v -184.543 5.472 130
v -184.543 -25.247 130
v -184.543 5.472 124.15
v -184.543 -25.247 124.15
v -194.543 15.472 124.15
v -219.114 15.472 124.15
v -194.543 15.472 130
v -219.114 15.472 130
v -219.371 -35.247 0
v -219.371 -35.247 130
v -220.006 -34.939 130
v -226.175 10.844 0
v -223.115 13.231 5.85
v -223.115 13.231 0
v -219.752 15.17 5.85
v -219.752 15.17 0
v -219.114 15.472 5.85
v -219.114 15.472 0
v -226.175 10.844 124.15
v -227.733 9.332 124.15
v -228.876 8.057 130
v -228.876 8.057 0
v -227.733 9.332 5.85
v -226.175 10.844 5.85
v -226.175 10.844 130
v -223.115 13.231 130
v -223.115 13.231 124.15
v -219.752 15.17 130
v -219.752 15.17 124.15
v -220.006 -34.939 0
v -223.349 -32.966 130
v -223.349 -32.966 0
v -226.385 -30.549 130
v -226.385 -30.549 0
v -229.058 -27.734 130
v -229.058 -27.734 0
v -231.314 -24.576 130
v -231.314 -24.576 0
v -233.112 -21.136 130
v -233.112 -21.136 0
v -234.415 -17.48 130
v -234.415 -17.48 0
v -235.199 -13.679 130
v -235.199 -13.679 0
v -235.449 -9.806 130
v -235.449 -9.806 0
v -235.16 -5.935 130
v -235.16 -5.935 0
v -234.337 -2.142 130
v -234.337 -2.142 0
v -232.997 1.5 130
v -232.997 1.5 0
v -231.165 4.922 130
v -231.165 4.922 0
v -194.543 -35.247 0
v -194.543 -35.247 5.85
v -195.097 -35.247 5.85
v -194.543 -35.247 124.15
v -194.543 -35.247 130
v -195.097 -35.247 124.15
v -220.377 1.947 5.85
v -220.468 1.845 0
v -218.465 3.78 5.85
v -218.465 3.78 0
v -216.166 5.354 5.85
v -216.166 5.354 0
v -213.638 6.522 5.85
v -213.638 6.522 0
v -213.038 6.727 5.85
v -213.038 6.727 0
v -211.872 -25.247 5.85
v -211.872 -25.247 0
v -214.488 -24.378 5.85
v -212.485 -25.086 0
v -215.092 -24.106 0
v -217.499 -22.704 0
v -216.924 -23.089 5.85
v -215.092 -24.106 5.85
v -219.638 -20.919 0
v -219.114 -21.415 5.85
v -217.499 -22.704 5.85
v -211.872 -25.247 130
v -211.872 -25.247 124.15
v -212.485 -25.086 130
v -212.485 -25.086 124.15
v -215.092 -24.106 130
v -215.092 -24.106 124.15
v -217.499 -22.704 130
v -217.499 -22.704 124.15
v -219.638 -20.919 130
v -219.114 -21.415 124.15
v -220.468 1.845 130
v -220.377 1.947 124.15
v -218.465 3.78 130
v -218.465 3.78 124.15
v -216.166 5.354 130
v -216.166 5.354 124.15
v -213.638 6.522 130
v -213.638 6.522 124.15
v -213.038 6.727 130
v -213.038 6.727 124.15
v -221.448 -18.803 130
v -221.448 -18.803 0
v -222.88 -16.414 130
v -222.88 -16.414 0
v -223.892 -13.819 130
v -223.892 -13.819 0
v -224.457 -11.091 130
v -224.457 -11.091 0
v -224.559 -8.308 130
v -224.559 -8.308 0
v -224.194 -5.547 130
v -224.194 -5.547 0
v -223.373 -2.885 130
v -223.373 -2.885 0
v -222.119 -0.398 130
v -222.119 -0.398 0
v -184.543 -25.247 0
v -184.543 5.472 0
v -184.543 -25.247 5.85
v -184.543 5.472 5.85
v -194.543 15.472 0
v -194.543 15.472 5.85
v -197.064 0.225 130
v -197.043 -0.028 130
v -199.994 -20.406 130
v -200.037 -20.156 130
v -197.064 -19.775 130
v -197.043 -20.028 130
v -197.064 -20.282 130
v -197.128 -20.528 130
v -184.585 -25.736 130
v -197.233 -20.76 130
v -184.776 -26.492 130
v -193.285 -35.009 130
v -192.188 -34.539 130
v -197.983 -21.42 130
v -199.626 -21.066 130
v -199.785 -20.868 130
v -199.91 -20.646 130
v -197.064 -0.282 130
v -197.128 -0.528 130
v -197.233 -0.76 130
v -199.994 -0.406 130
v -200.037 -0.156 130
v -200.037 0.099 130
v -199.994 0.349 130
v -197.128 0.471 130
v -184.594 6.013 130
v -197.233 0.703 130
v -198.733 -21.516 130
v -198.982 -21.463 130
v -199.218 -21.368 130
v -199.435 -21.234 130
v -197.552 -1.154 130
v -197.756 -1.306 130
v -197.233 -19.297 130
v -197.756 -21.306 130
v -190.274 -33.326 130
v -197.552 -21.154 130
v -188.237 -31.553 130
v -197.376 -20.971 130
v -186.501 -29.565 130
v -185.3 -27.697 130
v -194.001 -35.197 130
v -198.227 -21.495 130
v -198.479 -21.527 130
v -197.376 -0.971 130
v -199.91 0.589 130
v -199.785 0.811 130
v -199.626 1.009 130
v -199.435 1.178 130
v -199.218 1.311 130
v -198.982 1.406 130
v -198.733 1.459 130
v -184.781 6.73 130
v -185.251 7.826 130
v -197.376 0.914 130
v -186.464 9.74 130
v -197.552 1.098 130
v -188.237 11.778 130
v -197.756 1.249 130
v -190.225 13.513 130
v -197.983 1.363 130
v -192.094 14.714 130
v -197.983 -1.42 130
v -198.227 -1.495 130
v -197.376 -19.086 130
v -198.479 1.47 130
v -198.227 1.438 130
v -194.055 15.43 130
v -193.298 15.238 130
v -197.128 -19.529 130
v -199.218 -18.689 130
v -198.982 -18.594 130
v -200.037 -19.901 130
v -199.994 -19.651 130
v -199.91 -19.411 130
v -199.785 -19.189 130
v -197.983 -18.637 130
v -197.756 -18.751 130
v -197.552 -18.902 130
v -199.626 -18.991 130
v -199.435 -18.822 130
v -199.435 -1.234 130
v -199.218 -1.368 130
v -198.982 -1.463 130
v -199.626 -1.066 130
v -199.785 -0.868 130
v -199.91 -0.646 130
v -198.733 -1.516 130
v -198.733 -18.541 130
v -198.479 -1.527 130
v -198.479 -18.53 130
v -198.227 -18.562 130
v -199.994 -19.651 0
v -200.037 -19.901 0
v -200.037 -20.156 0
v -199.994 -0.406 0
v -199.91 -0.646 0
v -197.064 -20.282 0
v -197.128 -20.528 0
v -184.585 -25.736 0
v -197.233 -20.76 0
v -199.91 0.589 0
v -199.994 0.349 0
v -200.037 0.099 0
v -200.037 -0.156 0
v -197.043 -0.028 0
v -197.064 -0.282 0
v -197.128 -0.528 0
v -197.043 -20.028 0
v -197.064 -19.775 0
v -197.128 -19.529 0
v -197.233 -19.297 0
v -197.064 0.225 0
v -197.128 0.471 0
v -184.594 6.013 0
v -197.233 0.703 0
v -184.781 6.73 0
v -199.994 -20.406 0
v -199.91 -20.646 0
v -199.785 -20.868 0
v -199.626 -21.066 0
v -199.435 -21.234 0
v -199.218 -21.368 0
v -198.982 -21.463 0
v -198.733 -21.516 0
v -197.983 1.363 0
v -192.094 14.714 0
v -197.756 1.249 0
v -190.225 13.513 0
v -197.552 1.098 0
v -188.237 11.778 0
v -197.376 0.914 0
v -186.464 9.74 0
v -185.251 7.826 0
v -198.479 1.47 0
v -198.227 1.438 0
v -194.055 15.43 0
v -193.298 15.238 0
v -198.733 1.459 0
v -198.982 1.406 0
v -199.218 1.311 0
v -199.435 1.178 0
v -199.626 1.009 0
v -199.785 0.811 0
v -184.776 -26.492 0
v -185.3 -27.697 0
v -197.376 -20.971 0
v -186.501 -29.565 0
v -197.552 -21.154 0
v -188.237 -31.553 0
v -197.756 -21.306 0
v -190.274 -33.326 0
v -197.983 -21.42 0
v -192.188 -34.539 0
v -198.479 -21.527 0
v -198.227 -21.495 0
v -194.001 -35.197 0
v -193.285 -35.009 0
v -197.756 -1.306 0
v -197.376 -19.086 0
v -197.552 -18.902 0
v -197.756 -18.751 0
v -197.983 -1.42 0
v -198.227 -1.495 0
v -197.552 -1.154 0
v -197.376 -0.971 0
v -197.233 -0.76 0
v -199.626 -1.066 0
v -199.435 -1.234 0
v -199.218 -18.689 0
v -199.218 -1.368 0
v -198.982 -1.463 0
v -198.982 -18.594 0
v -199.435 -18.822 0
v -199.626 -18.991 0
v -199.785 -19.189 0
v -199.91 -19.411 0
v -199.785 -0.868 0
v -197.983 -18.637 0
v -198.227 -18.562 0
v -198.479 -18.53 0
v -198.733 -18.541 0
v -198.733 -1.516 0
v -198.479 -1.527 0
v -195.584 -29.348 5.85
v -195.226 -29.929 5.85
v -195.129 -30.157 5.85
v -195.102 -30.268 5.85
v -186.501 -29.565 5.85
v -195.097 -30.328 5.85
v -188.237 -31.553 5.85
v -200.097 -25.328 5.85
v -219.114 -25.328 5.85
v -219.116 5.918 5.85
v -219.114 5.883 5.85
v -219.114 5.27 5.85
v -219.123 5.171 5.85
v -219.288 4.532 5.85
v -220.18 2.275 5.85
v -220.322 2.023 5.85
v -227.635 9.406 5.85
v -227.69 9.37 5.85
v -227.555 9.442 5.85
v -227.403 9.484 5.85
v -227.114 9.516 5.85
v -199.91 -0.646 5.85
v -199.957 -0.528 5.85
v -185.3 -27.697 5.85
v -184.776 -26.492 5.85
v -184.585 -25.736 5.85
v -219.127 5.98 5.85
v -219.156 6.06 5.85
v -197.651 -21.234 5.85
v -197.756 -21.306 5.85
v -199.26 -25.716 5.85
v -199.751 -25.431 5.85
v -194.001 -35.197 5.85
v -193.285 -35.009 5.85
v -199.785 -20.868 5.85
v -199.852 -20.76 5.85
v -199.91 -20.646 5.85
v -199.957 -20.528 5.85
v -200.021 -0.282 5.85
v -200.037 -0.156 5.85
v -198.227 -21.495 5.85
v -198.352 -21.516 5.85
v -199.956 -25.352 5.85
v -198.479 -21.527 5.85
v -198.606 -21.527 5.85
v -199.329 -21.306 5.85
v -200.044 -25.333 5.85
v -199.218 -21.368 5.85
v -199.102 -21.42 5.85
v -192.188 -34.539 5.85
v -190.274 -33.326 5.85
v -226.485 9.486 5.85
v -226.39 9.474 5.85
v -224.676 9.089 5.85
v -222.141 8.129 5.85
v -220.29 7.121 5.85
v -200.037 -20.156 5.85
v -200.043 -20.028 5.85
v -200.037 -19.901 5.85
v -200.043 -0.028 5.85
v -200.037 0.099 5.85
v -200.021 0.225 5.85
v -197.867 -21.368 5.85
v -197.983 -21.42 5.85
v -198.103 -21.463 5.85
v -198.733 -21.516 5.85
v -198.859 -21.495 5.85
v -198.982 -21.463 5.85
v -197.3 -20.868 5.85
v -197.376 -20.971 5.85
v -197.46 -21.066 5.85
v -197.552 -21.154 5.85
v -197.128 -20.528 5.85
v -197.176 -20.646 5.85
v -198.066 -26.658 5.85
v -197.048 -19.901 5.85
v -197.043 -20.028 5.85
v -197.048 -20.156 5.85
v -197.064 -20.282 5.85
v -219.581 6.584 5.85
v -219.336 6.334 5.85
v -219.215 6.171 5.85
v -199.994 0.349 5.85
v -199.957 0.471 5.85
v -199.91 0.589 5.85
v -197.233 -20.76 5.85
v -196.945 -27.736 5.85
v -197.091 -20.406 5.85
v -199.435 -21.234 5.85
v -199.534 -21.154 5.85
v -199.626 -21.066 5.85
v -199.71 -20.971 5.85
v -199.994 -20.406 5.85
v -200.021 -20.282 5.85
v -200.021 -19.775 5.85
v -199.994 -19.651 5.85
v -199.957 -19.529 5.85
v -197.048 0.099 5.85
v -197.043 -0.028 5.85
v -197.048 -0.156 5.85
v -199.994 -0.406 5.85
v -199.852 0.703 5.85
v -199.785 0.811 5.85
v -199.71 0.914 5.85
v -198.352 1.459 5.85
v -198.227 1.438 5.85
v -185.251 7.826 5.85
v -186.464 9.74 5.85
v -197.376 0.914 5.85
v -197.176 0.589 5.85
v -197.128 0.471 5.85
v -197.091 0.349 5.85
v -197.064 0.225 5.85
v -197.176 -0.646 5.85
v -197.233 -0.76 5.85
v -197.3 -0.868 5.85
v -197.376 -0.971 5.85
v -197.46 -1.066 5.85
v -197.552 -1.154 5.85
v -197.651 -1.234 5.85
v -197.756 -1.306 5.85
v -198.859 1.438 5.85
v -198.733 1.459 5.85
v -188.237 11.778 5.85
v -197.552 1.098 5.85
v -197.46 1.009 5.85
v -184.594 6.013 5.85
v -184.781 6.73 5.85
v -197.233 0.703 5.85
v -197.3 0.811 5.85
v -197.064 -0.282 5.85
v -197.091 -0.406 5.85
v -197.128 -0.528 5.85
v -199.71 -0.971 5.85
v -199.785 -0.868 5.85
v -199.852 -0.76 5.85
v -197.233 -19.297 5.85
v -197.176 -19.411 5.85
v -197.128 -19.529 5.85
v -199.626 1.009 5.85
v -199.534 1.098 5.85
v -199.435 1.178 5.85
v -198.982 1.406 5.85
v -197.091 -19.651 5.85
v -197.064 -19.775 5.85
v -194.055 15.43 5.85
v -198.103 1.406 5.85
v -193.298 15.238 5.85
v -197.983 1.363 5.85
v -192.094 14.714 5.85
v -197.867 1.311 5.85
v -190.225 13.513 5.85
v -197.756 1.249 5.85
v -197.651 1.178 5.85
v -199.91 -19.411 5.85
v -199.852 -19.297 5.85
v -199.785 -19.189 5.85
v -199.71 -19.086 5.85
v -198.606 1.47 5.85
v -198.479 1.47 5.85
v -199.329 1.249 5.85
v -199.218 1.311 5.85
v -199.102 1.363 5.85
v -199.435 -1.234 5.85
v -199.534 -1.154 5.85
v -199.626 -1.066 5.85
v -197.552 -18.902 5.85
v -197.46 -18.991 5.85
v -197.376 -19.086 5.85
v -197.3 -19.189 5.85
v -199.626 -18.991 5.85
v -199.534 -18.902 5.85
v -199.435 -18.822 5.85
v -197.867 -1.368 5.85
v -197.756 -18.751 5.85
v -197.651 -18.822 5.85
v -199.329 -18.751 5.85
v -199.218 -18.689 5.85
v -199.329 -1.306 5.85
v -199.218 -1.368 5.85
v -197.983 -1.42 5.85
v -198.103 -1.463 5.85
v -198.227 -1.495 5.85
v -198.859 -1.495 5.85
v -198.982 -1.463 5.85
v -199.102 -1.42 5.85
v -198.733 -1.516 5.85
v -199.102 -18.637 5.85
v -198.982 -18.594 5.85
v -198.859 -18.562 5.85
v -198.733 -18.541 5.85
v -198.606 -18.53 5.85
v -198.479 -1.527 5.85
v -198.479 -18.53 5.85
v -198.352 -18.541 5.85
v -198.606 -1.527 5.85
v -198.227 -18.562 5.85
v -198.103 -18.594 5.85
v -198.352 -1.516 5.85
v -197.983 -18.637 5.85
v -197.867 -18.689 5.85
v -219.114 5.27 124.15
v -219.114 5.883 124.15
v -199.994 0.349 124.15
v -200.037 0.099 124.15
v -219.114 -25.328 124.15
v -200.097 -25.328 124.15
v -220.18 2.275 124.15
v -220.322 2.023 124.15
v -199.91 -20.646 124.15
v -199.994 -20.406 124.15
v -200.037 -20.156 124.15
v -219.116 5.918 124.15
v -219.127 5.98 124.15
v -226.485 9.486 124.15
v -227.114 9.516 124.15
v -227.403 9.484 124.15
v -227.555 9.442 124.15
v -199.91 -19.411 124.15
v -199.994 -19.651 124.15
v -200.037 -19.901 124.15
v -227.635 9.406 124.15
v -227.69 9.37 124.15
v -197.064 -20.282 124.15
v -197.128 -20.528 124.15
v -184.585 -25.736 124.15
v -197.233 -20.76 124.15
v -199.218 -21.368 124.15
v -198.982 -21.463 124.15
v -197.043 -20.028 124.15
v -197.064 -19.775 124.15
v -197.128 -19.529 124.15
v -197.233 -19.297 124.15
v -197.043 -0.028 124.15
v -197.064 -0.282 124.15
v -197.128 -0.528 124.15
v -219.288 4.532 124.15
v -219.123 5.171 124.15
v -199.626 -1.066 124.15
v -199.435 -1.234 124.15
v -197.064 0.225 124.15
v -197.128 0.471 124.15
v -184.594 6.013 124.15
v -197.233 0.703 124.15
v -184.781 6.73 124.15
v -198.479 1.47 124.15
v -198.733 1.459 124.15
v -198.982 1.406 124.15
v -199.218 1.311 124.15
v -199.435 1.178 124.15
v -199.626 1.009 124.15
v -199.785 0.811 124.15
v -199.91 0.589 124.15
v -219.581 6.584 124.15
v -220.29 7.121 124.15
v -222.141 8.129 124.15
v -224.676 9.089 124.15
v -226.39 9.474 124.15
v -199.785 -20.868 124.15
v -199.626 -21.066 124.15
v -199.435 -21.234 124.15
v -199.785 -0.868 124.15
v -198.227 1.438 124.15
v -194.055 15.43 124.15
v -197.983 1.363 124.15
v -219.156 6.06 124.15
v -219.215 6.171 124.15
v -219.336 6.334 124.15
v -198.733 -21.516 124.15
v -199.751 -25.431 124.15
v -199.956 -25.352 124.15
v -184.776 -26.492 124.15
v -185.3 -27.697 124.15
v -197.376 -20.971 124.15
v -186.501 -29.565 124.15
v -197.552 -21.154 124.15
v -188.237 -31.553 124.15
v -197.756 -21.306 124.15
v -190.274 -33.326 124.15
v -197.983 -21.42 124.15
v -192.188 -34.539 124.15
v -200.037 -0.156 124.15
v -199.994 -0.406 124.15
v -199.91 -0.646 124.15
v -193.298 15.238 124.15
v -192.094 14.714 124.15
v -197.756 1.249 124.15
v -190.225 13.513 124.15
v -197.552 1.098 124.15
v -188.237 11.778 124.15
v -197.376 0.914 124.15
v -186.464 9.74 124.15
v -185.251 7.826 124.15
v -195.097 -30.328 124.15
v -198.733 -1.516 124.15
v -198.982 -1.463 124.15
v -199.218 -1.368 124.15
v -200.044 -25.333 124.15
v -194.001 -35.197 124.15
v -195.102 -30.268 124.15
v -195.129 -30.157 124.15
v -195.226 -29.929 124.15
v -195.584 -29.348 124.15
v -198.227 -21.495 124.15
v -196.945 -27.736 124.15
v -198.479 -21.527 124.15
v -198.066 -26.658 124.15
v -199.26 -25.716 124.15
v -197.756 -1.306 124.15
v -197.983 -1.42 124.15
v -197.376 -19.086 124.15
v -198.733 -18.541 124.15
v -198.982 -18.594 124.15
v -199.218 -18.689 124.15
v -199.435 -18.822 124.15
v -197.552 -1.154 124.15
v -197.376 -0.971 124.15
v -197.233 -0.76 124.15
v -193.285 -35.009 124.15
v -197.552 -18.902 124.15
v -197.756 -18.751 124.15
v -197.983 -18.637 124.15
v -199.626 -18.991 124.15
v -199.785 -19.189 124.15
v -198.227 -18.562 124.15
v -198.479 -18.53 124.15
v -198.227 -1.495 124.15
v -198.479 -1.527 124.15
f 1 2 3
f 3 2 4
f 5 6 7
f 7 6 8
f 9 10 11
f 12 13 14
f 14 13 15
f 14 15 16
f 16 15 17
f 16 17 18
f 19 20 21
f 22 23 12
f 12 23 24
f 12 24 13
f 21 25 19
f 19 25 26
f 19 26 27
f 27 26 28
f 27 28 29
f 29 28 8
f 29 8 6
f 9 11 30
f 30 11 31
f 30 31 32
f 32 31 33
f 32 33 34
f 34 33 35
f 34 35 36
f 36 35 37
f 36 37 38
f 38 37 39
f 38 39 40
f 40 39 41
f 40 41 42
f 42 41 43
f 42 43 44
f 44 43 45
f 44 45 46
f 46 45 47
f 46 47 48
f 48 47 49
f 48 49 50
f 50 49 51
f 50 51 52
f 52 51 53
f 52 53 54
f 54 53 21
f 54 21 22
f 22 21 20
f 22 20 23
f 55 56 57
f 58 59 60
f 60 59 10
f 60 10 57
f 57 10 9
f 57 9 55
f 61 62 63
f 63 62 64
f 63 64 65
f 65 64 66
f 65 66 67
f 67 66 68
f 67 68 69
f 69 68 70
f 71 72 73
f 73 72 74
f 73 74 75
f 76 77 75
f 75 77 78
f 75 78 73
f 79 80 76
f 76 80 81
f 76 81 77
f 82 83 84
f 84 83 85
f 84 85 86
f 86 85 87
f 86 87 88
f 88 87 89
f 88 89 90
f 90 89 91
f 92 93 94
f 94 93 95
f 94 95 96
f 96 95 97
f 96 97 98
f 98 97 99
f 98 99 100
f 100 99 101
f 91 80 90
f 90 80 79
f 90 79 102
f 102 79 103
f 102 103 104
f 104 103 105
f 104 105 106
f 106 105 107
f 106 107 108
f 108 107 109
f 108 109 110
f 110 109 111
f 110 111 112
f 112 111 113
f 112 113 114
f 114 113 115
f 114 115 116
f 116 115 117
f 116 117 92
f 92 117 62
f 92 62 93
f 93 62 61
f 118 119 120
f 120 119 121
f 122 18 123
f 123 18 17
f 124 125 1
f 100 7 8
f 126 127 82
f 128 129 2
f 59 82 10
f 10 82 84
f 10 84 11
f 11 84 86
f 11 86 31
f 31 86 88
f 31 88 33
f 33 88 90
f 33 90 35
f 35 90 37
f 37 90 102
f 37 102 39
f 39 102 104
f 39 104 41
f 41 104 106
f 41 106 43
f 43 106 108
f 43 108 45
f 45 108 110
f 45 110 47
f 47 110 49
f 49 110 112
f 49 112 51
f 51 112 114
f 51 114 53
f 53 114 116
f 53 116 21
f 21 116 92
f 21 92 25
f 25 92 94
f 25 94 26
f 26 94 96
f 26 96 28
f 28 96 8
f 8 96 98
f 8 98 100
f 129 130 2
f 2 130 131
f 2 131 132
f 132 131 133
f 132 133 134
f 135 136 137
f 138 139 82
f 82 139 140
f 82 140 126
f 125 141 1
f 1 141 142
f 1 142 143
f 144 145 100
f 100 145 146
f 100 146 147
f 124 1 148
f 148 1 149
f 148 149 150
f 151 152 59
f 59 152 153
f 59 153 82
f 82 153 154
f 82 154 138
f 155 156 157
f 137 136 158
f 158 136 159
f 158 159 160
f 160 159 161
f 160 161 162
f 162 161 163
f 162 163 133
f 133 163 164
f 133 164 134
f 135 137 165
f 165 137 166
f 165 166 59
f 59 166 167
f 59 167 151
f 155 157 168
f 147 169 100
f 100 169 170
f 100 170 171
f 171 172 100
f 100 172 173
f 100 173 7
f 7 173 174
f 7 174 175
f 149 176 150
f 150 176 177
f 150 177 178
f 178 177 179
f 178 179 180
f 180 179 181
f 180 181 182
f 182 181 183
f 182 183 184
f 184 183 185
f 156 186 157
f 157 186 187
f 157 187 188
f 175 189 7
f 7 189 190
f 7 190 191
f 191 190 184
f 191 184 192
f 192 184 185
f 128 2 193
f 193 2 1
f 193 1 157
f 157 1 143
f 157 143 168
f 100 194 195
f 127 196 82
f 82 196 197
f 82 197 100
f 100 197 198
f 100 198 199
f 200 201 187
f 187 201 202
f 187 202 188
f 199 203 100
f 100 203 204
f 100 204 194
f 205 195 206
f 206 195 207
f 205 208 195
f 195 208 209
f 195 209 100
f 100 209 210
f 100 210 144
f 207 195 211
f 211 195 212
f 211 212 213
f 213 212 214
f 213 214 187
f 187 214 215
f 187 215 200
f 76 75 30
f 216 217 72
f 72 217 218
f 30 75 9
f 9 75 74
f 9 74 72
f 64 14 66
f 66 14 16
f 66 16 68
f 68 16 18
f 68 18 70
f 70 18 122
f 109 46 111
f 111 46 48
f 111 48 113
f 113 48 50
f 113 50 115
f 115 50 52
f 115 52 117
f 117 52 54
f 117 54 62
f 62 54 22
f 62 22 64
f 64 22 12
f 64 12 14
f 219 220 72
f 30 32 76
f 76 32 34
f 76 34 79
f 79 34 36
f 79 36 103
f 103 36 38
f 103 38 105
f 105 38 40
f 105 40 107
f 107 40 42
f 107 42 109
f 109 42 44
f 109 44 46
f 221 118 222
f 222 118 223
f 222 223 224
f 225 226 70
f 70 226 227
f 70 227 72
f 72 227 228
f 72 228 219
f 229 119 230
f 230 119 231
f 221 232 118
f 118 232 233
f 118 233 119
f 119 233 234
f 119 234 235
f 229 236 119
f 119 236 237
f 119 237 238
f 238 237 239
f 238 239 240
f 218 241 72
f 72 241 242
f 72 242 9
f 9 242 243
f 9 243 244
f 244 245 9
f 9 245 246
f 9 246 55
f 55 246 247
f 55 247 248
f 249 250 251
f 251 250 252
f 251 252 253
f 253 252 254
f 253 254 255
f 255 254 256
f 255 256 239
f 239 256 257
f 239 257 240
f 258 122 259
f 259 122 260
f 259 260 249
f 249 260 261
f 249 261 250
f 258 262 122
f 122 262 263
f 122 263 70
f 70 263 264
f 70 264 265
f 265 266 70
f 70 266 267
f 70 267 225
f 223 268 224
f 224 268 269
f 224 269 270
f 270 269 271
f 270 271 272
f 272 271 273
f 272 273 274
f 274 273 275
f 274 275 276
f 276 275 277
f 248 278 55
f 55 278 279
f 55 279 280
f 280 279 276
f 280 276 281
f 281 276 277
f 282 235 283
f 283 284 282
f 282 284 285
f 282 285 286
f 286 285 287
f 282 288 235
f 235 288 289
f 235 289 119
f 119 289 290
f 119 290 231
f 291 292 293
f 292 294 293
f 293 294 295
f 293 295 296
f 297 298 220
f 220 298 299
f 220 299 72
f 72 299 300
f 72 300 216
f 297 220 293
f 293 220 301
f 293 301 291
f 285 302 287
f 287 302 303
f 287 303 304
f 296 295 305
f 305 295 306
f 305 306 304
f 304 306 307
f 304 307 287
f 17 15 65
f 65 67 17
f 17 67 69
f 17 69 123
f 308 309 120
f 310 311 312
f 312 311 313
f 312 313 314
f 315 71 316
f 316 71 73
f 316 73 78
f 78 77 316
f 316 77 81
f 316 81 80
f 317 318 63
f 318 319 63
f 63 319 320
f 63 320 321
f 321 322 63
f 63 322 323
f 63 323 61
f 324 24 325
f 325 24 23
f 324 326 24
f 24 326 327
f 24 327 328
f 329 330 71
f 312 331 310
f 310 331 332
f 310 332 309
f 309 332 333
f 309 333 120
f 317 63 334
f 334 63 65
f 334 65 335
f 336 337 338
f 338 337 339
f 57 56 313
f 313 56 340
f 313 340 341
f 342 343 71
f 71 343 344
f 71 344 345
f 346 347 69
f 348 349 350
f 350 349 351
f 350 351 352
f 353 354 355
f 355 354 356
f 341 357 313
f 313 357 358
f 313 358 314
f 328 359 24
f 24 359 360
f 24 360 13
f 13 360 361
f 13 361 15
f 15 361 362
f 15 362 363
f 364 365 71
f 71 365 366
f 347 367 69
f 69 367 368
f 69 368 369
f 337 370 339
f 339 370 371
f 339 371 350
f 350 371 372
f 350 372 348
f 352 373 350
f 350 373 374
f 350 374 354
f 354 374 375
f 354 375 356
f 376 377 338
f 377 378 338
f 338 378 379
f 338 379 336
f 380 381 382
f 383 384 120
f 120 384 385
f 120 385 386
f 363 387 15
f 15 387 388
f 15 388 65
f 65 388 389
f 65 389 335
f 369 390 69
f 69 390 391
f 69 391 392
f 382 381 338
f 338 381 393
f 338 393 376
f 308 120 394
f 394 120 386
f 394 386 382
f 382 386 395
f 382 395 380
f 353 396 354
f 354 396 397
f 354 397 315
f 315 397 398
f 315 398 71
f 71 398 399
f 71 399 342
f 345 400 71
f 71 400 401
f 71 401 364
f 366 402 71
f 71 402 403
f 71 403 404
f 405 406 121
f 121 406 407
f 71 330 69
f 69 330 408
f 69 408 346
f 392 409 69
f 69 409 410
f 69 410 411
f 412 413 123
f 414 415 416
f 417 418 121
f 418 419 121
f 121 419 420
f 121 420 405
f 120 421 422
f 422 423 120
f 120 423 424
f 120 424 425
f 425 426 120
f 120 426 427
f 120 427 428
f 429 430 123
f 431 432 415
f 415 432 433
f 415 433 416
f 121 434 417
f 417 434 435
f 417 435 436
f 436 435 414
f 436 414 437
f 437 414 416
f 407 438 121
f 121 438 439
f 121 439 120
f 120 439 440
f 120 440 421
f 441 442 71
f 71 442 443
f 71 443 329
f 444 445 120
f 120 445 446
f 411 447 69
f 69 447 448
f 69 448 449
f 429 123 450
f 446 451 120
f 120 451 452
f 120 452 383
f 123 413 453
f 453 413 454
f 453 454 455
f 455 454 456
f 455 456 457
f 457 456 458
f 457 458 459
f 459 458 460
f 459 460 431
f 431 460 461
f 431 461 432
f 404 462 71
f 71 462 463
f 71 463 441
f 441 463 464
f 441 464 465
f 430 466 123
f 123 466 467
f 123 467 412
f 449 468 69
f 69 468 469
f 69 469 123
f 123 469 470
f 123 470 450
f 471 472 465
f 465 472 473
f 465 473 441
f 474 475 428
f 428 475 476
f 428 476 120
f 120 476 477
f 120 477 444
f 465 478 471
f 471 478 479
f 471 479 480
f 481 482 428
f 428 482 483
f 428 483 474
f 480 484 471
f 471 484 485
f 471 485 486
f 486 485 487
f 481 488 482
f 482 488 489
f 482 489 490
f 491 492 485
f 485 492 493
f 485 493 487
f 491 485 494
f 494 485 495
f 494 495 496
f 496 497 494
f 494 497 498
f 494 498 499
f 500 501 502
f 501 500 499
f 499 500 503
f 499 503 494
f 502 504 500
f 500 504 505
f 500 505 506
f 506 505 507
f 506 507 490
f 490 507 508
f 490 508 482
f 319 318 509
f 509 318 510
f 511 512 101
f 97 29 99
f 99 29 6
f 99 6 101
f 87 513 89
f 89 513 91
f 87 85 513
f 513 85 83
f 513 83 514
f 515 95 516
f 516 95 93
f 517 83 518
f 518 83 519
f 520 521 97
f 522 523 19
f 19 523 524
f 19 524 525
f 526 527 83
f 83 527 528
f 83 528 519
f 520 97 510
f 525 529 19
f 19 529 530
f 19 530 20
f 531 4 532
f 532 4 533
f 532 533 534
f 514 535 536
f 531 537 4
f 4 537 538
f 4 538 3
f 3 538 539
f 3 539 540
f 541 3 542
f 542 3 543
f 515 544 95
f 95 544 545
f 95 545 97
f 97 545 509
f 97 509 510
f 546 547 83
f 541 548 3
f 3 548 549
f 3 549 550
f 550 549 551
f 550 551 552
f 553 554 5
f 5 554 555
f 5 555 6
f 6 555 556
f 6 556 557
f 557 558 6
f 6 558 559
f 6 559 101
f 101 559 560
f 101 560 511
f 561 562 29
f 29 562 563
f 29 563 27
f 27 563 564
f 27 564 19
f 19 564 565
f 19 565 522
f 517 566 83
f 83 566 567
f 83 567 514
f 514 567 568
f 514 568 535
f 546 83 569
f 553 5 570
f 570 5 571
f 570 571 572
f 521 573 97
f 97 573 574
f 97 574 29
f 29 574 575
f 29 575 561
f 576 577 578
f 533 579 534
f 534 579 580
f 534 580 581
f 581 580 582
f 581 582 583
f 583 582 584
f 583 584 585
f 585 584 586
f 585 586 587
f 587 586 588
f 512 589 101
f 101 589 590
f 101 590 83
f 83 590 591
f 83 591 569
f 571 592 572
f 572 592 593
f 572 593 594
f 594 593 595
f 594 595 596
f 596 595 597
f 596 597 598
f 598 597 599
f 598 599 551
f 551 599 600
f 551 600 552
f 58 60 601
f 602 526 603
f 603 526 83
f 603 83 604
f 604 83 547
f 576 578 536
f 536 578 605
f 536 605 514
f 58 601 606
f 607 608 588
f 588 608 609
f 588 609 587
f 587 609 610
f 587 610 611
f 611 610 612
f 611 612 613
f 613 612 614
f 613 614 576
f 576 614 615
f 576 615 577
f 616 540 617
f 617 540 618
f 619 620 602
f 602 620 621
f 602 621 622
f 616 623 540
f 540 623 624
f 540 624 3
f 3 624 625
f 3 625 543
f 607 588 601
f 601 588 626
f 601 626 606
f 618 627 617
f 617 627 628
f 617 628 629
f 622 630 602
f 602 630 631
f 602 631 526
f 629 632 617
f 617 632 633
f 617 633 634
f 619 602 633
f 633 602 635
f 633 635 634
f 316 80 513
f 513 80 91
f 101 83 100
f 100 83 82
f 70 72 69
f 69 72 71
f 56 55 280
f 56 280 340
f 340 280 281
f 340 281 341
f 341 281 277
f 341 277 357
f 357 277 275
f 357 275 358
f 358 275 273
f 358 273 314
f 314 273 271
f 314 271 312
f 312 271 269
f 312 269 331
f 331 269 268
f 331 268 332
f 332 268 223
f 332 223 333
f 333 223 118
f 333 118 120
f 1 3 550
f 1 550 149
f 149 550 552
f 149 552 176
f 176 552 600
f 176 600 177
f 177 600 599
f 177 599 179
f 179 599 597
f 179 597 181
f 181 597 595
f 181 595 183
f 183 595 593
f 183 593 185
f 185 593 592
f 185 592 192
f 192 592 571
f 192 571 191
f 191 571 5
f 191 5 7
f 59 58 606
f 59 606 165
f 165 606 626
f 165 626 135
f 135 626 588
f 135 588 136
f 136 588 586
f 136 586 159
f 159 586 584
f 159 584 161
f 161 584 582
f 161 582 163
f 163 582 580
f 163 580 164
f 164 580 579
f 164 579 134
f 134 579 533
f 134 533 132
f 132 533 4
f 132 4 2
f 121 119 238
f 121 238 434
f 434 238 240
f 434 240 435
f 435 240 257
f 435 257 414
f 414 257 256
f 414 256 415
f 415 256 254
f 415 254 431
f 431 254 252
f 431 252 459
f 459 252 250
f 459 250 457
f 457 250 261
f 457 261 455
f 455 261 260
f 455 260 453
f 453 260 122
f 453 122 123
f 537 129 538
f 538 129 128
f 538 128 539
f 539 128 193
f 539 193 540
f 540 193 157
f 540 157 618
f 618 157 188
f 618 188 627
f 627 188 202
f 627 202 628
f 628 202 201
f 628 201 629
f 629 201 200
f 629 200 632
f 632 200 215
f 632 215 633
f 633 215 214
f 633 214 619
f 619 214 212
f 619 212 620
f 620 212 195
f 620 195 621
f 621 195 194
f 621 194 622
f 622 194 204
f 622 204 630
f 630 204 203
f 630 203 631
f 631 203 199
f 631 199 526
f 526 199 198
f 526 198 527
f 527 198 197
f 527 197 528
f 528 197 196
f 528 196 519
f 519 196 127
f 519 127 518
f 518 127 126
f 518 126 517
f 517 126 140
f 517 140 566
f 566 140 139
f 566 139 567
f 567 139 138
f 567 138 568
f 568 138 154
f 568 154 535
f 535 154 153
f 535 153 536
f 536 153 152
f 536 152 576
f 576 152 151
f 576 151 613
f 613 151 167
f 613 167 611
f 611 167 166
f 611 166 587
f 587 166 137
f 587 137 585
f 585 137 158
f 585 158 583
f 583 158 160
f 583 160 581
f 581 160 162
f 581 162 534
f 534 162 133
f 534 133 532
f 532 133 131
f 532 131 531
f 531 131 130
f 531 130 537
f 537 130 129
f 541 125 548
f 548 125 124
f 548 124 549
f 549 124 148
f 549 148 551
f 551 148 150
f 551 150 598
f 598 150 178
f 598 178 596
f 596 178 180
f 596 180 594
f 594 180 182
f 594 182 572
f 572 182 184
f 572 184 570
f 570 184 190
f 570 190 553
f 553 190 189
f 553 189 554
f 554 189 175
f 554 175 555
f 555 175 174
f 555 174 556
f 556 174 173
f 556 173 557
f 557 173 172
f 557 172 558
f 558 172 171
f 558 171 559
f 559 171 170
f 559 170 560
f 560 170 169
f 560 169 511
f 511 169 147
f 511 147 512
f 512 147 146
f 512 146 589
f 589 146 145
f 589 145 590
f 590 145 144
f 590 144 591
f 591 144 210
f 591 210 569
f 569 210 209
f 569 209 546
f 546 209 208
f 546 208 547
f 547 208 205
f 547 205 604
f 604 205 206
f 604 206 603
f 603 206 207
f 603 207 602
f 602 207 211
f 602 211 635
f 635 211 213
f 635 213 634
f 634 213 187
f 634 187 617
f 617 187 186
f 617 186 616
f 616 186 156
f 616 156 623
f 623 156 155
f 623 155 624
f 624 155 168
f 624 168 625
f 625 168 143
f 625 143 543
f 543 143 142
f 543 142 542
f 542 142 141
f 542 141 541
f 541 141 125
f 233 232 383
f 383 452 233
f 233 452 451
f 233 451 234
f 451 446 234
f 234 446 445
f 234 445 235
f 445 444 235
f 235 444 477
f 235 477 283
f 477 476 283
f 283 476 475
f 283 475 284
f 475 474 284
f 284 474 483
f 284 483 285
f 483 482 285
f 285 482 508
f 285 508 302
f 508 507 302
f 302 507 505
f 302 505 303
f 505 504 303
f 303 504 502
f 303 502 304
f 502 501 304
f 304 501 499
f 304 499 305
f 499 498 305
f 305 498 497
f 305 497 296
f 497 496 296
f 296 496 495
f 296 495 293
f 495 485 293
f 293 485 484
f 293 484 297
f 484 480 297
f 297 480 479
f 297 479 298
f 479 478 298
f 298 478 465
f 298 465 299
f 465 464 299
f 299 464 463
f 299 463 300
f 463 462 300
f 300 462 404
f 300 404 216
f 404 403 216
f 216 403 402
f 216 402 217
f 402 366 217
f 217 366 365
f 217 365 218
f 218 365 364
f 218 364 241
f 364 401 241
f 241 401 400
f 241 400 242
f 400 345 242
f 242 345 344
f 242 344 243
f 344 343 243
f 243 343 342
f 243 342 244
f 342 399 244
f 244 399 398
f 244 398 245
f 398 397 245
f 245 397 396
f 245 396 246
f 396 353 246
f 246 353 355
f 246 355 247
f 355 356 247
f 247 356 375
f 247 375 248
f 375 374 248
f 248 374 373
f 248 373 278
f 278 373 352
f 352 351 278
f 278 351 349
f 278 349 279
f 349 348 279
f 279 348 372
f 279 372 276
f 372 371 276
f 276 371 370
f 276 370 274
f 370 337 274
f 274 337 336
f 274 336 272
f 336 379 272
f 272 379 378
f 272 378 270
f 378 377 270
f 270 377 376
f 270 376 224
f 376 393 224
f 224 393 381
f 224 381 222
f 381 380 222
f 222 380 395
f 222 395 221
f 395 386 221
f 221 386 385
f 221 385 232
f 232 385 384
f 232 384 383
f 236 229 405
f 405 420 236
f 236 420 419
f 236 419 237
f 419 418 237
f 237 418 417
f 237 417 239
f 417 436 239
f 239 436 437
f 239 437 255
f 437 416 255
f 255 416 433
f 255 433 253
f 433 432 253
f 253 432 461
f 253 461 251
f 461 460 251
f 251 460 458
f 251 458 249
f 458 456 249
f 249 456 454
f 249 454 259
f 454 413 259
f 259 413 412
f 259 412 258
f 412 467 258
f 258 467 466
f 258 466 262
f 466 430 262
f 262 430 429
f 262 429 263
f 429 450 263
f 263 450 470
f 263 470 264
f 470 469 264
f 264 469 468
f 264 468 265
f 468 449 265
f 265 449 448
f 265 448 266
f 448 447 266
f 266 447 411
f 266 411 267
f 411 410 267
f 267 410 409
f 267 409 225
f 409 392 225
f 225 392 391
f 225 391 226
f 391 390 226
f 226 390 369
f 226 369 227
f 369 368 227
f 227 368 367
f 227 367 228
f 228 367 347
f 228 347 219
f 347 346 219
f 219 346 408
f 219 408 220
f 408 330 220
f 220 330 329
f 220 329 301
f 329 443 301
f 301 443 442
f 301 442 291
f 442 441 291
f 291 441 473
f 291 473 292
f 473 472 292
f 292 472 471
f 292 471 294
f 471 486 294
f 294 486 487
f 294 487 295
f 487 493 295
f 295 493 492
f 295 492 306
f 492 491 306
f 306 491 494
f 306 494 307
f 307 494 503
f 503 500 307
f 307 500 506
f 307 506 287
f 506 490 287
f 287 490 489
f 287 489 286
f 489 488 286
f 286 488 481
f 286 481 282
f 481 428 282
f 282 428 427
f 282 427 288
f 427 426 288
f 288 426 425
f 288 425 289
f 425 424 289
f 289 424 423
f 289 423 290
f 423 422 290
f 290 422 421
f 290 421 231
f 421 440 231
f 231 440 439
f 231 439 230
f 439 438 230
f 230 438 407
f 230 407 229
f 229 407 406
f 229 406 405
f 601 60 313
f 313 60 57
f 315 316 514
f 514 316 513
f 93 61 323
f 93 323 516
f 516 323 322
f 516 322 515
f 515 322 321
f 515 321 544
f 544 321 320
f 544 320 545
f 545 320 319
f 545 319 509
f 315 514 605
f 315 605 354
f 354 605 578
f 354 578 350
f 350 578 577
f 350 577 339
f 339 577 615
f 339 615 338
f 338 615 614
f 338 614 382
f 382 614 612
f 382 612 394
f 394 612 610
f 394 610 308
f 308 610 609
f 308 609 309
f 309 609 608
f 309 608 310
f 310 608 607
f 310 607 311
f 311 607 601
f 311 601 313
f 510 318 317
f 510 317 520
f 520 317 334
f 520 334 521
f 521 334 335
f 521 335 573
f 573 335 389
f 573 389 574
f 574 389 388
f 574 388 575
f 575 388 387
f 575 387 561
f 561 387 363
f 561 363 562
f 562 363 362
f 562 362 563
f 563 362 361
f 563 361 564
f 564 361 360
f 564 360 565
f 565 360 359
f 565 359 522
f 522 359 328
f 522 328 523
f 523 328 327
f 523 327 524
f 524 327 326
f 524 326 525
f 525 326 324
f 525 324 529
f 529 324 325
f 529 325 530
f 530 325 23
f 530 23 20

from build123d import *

# Parameters (mm, degrees)
BOSS_EXTRUDE1_DEPTH     = 130
CUT_EXTRUDE3_DEPTH      = 273.019096875
CUT_EXTRUDE3_DEPTH_BACK = 273.019096875
FILLET2_SIZE            = 10
CUT_EXTRUDE4_DEPTH      = 272.254010875
CUT_EXTRUDE4_DEPTH_BACK = 272.254010875
SKETCH8_R               = 1.5
SKETCH9_W               = 24.273397223
SKETCH9_H               = 9.918939499
BOSS_EXTRUDE5_DEPTH     = 129
FILLET5_SIZE            = 5


with BuildPart() as part:
    # Sketch1 → Boss-Extrude1 (new body)
    with BuildSketch(Plane.XY):
        with BuildLine():
            Line((-213.038141425, 15.471509733), (-219.113768434, 15.471509733))
            ThreePointArc((-219.113768434, 15.471509733), (-235.448907683, -9.805845818), (-219.370745969, -35.247429766))
            Line((-219.370745969, -35.247429766), (-184.542720563, -35.247429766))
            Line((-184.542720563, -35.247429766), (-184.542720563, -25.247429766))
            Line((-184.542720563, -25.247429766), (-211.872100418, -25.247429766))
            ThreePointArc((-211.872100418, -25.247429766), (-224.566556185, -9.701816168), (-213.038141425, 6.727151008))
            Line((-213.038141425, 6.727151008), (-184.542720563, 6.727151008))
            Line((-184.542720563, 6.727151008), (-184.542720563, 15.471509733))
            Line((-184.542720563, 15.471509733), (-213.038141425, 15.471509733))
        make_face()
    extrude(amount=BOSS_EXTRUDE1_DEPTH)

    # Sketch6 → Cut-Extrude3 (cut, two sides: drawn at the far end of the back side and taken through both)
    with BuildSketch(Plane(origin=(0, -25.247429766, 0), x_dir=(1, 0, 0), z_dir=(0, 1, 0)).offset(-CUT_EXTRUDE3_DEPTH_BACK)):
        Polygon((-184.285743028, -5.850012024), (-219.113768434, -5.85), (-219.113768434, -124.15), (-184.232404978, -124.15), align=None)
    extrude(amount=CUT_EXTRUDE3_DEPTH + CUT_EXTRUDE3_DEPTH_BACK, mode=Mode.SUBTRACT)

    # loft from a face of the part (loft4)
    loft([part.faces().sort_by_distance((-198.20741049, -25.247429766, 127.075))[0], part.faces().sort_by_distance((-198.790430994, 6.727151008, 127.075))[0]])

    # loft from a face of the part (loft5)
    loft([part.faces().sort_by_distance((-198.207406817, -25.247429766, 2.925003609))[0], part.faces().sort_by_distance((-198.790427001, 6.727151008, 2.925003508))[0]])

    # Fillet2
    # a fillet whose section is not a circle: 10 mm, written as the material it takes off along each edge
    with BuildSketch(Plane(origin=(-184.542720563, 15.471509733, 99.15), x_dir=(0, -1, 0), z_dir=(0, 0, 1))) as fillet2_piece_1:
        with BuildLine():
            Bezier((FILLET2_SIZE, 0), (0, 0), (0, -FILLET2_SIZE), weights=[1, 0.353553391, 1])
            Line((0, -FILLET2_SIZE), (0, 0))
            Line((0, 0), (FILLET2_SIZE, 0))
        make_face()
    extrude(amount=55.85, mode=Mode.SUBTRACT)
    with BuildSketch(Plane(origin=(-184.542720563, -35.247429766, 99.15), x_dir=(0, 1, 0), z_dir=(0, 0, 1))) as fillet2_piece_2:
        with BuildLine():
            Bezier((FILLET2_SIZE, 0), (0, 0), (0, FILLET2_SIZE), weights=[1, 0.353553391, 1])
            Line((0, FILLET2_SIZE), (0, 0))
            Line((0, 0), (FILLET2_SIZE, 0))
        make_face()
    extrude(amount=55.85, mode=Mode.SUBTRACT)
    with BuildSketch(Plane(origin=(-184.542720563, 15.471509733, -25), x_dir=(-1, 0, 0), z_dir=(0, 0, 1))) as fillet2_piece_3:
        with BuildLine():
            Bezier((FILLET2_SIZE, 0), (0, 0), (0, FILLET2_SIZE), weights=[1, 0.353553391, 1])
            Line((0, FILLET2_SIZE), (0, 0))
            Line((0, 0), (FILLET2_SIZE, 0))
        make_face()
    extrude(amount=55.850011936, mode=Mode.SUBTRACT)
    with BuildSketch(Plane(origin=(-184.542720563, -35.247429766, -25), x_dir=(-1, 0, 0), z_dir=(0, 0, 1))) as fillet2_piece_4:
        with BuildLine():
            Bezier((FILLET2_SIZE, 0), (0, 0), (0, -FILLET2_SIZE), weights=[1, 0.353553391, 1])
            Line((0, -FILLET2_SIZE), (0, 0))
            Line((0, 0), (FILLET2_SIZE, 0))
        make_face()
    extrude(amount=55.850011936, mode=Mode.SUBTRACT)

    # Sketch8 → Cut-Extrude4 (cut, two sides: drawn at the far end of the back side and taken through both)
    with BuildSketch(Plane.XY.offset(130).offset(-CUT_EXTRUDE4_DEPTH_BACK)):
        with Locations((-198.542720563, -0.028490267)):
            Circle(SKETCH8_R)
        with Locations((-198.542720563, -20.028490267)):
            Circle(SKETCH8_R)
    extrude(amount=CUT_EXTRUDE4_DEPTH + CUT_EXTRUDE4_DEPTH_BACK, mode=Mode.SUBTRACT)

    # Sketch9 → Boss-Extrude5 (add)
    with BuildSketch(Plane.XY.offset(130)):
        with Locations((-207.234047358, -30.287960017)):
            Rectangle(SKETCH9_W, SKETCH9_H)
    extrude(amount=-BOSS_EXTRUDE5_DEPTH)

    # Fillet5
    # a fillet whose section is not a circle: 5 mm, written as the material it takes off along each edge
    with BuildSketch(Plane(origin=(-219.113768434, 3.222415949, 124.15), x_dir=(-0.7039216353317727, -0.7102776438209518, 0), z_dir=(0, 0, -1))) as fillet5_piece_1_section:
        with BuildLine():
            Bezier((1.79521773, 0), (-0.103639657, 0.102712225), (-1.454327272, 1.441313042), weights=[1, 0.23367054, 1])
            Line((-1.454327272, 1.441313042), (0, 0))
            ThreePointArc((0, 0), (0.897608865, 0.024258816), (1.79521773, 0))
        make_face()
    fillet5_piece_1 = extrude(amount=123.418868953, mode=Mode.PRIVATE)
    fillet5_piece_1 = split(fillet5_piece_1, bisect_by=Plane(origin=(-219.113727591, 3.222415949, 5.85), z_dir=(-3.452476154533893e-07, 0, 0.9999999999999404)), keep=Keep.TOP, mode=Mode.PRIVATE)
    add(fillet5_piece_1, mode=Mode.SUBTRACT)
    with BuildSketch(Plane(origin=(-195.097348746, -25.328490267, 124.15), x_dir=(-1, 0, 0), z_dir=(0, 0, -1))) as fillet5_piece_2_section:
        with BuildLine():
            Bezier((FILLET5_SIZE, 0), (0, 0), (0, -FILLET5_SIZE), weights=[1, 0.176776695, 1])
            Line((0, -FILLET5_SIZE), (0, 0))
            Line((0, 0), (FILLET5_SIZE, 0))
        make_face()
    fillet5_piece_2 = extrude(amount=130.799991708, mode=Mode.PRIVATE)
    fillet5_piece_2 = split(fillet5_piece_2, bisect_by=Plane(origin=(-195.097307903, -25.328490267, 5.850008292), z_dir=(-3.452476154533893e-07, 0, 0.9999999999999404)), keep=Keep.TOP, mode=Mode.PRIVATE)
    add(fillet5_piece_2, mode=Mode.SUBTRACT)
    with BuildSketch(Plane(origin=(-219.113768434, 15.471509733, -20.605653446), x_dir=(0, -1, 0), z_dir=(0, 0, 1))) as fillet5_piece_3_section:
        with BuildLine():
            Bezier((9.588913957, 0), (-2.904204754, 0), (6.139263069, -8.619379609), weights=[1, 0.092891751, 1])
            ThreePointArc((6.139263069, -8.619379609), (2.657898383, -4.602951994), (0, 0))
            Line((0, 0), (9.588913957, 0))
        make_face()
    fillet5_piece_3 = extrude(amount=144.755653446, mode=Mode.PRIVATE)
    fillet5_piece_3 = split(fillet5_piece_3, bisect_by=Plane(origin=(-219.113777568, 15.471509733, 5.85), z_dir=(-3.452476154533893e-07, 0, 0.9999999999999404)), keep=Keep.TOP, mode=Mode.PRIVATE)
    add(fillet5_piece_3, mode=Mode.SUBTRACT)


solid = part.part
